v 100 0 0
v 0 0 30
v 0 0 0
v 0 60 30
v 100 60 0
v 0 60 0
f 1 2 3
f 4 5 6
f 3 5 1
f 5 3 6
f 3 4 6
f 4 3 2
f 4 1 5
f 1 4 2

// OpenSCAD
// Wedge ramp: base 100(X) x 60(Y); vertical face at x=0 up to z=30; sloped top
// falls to z=0 at x=100. Flat base on bed.
polyhedron(
  points=[[0,0,0],[100,0,0],[0,0,30],[0,60,0],[100,60,0],[0,60,30]],
  faces=[[0,2,1],[3,4,5],[0,1,4,3],[0,3,5,2],[1,2,5,4]]
);
